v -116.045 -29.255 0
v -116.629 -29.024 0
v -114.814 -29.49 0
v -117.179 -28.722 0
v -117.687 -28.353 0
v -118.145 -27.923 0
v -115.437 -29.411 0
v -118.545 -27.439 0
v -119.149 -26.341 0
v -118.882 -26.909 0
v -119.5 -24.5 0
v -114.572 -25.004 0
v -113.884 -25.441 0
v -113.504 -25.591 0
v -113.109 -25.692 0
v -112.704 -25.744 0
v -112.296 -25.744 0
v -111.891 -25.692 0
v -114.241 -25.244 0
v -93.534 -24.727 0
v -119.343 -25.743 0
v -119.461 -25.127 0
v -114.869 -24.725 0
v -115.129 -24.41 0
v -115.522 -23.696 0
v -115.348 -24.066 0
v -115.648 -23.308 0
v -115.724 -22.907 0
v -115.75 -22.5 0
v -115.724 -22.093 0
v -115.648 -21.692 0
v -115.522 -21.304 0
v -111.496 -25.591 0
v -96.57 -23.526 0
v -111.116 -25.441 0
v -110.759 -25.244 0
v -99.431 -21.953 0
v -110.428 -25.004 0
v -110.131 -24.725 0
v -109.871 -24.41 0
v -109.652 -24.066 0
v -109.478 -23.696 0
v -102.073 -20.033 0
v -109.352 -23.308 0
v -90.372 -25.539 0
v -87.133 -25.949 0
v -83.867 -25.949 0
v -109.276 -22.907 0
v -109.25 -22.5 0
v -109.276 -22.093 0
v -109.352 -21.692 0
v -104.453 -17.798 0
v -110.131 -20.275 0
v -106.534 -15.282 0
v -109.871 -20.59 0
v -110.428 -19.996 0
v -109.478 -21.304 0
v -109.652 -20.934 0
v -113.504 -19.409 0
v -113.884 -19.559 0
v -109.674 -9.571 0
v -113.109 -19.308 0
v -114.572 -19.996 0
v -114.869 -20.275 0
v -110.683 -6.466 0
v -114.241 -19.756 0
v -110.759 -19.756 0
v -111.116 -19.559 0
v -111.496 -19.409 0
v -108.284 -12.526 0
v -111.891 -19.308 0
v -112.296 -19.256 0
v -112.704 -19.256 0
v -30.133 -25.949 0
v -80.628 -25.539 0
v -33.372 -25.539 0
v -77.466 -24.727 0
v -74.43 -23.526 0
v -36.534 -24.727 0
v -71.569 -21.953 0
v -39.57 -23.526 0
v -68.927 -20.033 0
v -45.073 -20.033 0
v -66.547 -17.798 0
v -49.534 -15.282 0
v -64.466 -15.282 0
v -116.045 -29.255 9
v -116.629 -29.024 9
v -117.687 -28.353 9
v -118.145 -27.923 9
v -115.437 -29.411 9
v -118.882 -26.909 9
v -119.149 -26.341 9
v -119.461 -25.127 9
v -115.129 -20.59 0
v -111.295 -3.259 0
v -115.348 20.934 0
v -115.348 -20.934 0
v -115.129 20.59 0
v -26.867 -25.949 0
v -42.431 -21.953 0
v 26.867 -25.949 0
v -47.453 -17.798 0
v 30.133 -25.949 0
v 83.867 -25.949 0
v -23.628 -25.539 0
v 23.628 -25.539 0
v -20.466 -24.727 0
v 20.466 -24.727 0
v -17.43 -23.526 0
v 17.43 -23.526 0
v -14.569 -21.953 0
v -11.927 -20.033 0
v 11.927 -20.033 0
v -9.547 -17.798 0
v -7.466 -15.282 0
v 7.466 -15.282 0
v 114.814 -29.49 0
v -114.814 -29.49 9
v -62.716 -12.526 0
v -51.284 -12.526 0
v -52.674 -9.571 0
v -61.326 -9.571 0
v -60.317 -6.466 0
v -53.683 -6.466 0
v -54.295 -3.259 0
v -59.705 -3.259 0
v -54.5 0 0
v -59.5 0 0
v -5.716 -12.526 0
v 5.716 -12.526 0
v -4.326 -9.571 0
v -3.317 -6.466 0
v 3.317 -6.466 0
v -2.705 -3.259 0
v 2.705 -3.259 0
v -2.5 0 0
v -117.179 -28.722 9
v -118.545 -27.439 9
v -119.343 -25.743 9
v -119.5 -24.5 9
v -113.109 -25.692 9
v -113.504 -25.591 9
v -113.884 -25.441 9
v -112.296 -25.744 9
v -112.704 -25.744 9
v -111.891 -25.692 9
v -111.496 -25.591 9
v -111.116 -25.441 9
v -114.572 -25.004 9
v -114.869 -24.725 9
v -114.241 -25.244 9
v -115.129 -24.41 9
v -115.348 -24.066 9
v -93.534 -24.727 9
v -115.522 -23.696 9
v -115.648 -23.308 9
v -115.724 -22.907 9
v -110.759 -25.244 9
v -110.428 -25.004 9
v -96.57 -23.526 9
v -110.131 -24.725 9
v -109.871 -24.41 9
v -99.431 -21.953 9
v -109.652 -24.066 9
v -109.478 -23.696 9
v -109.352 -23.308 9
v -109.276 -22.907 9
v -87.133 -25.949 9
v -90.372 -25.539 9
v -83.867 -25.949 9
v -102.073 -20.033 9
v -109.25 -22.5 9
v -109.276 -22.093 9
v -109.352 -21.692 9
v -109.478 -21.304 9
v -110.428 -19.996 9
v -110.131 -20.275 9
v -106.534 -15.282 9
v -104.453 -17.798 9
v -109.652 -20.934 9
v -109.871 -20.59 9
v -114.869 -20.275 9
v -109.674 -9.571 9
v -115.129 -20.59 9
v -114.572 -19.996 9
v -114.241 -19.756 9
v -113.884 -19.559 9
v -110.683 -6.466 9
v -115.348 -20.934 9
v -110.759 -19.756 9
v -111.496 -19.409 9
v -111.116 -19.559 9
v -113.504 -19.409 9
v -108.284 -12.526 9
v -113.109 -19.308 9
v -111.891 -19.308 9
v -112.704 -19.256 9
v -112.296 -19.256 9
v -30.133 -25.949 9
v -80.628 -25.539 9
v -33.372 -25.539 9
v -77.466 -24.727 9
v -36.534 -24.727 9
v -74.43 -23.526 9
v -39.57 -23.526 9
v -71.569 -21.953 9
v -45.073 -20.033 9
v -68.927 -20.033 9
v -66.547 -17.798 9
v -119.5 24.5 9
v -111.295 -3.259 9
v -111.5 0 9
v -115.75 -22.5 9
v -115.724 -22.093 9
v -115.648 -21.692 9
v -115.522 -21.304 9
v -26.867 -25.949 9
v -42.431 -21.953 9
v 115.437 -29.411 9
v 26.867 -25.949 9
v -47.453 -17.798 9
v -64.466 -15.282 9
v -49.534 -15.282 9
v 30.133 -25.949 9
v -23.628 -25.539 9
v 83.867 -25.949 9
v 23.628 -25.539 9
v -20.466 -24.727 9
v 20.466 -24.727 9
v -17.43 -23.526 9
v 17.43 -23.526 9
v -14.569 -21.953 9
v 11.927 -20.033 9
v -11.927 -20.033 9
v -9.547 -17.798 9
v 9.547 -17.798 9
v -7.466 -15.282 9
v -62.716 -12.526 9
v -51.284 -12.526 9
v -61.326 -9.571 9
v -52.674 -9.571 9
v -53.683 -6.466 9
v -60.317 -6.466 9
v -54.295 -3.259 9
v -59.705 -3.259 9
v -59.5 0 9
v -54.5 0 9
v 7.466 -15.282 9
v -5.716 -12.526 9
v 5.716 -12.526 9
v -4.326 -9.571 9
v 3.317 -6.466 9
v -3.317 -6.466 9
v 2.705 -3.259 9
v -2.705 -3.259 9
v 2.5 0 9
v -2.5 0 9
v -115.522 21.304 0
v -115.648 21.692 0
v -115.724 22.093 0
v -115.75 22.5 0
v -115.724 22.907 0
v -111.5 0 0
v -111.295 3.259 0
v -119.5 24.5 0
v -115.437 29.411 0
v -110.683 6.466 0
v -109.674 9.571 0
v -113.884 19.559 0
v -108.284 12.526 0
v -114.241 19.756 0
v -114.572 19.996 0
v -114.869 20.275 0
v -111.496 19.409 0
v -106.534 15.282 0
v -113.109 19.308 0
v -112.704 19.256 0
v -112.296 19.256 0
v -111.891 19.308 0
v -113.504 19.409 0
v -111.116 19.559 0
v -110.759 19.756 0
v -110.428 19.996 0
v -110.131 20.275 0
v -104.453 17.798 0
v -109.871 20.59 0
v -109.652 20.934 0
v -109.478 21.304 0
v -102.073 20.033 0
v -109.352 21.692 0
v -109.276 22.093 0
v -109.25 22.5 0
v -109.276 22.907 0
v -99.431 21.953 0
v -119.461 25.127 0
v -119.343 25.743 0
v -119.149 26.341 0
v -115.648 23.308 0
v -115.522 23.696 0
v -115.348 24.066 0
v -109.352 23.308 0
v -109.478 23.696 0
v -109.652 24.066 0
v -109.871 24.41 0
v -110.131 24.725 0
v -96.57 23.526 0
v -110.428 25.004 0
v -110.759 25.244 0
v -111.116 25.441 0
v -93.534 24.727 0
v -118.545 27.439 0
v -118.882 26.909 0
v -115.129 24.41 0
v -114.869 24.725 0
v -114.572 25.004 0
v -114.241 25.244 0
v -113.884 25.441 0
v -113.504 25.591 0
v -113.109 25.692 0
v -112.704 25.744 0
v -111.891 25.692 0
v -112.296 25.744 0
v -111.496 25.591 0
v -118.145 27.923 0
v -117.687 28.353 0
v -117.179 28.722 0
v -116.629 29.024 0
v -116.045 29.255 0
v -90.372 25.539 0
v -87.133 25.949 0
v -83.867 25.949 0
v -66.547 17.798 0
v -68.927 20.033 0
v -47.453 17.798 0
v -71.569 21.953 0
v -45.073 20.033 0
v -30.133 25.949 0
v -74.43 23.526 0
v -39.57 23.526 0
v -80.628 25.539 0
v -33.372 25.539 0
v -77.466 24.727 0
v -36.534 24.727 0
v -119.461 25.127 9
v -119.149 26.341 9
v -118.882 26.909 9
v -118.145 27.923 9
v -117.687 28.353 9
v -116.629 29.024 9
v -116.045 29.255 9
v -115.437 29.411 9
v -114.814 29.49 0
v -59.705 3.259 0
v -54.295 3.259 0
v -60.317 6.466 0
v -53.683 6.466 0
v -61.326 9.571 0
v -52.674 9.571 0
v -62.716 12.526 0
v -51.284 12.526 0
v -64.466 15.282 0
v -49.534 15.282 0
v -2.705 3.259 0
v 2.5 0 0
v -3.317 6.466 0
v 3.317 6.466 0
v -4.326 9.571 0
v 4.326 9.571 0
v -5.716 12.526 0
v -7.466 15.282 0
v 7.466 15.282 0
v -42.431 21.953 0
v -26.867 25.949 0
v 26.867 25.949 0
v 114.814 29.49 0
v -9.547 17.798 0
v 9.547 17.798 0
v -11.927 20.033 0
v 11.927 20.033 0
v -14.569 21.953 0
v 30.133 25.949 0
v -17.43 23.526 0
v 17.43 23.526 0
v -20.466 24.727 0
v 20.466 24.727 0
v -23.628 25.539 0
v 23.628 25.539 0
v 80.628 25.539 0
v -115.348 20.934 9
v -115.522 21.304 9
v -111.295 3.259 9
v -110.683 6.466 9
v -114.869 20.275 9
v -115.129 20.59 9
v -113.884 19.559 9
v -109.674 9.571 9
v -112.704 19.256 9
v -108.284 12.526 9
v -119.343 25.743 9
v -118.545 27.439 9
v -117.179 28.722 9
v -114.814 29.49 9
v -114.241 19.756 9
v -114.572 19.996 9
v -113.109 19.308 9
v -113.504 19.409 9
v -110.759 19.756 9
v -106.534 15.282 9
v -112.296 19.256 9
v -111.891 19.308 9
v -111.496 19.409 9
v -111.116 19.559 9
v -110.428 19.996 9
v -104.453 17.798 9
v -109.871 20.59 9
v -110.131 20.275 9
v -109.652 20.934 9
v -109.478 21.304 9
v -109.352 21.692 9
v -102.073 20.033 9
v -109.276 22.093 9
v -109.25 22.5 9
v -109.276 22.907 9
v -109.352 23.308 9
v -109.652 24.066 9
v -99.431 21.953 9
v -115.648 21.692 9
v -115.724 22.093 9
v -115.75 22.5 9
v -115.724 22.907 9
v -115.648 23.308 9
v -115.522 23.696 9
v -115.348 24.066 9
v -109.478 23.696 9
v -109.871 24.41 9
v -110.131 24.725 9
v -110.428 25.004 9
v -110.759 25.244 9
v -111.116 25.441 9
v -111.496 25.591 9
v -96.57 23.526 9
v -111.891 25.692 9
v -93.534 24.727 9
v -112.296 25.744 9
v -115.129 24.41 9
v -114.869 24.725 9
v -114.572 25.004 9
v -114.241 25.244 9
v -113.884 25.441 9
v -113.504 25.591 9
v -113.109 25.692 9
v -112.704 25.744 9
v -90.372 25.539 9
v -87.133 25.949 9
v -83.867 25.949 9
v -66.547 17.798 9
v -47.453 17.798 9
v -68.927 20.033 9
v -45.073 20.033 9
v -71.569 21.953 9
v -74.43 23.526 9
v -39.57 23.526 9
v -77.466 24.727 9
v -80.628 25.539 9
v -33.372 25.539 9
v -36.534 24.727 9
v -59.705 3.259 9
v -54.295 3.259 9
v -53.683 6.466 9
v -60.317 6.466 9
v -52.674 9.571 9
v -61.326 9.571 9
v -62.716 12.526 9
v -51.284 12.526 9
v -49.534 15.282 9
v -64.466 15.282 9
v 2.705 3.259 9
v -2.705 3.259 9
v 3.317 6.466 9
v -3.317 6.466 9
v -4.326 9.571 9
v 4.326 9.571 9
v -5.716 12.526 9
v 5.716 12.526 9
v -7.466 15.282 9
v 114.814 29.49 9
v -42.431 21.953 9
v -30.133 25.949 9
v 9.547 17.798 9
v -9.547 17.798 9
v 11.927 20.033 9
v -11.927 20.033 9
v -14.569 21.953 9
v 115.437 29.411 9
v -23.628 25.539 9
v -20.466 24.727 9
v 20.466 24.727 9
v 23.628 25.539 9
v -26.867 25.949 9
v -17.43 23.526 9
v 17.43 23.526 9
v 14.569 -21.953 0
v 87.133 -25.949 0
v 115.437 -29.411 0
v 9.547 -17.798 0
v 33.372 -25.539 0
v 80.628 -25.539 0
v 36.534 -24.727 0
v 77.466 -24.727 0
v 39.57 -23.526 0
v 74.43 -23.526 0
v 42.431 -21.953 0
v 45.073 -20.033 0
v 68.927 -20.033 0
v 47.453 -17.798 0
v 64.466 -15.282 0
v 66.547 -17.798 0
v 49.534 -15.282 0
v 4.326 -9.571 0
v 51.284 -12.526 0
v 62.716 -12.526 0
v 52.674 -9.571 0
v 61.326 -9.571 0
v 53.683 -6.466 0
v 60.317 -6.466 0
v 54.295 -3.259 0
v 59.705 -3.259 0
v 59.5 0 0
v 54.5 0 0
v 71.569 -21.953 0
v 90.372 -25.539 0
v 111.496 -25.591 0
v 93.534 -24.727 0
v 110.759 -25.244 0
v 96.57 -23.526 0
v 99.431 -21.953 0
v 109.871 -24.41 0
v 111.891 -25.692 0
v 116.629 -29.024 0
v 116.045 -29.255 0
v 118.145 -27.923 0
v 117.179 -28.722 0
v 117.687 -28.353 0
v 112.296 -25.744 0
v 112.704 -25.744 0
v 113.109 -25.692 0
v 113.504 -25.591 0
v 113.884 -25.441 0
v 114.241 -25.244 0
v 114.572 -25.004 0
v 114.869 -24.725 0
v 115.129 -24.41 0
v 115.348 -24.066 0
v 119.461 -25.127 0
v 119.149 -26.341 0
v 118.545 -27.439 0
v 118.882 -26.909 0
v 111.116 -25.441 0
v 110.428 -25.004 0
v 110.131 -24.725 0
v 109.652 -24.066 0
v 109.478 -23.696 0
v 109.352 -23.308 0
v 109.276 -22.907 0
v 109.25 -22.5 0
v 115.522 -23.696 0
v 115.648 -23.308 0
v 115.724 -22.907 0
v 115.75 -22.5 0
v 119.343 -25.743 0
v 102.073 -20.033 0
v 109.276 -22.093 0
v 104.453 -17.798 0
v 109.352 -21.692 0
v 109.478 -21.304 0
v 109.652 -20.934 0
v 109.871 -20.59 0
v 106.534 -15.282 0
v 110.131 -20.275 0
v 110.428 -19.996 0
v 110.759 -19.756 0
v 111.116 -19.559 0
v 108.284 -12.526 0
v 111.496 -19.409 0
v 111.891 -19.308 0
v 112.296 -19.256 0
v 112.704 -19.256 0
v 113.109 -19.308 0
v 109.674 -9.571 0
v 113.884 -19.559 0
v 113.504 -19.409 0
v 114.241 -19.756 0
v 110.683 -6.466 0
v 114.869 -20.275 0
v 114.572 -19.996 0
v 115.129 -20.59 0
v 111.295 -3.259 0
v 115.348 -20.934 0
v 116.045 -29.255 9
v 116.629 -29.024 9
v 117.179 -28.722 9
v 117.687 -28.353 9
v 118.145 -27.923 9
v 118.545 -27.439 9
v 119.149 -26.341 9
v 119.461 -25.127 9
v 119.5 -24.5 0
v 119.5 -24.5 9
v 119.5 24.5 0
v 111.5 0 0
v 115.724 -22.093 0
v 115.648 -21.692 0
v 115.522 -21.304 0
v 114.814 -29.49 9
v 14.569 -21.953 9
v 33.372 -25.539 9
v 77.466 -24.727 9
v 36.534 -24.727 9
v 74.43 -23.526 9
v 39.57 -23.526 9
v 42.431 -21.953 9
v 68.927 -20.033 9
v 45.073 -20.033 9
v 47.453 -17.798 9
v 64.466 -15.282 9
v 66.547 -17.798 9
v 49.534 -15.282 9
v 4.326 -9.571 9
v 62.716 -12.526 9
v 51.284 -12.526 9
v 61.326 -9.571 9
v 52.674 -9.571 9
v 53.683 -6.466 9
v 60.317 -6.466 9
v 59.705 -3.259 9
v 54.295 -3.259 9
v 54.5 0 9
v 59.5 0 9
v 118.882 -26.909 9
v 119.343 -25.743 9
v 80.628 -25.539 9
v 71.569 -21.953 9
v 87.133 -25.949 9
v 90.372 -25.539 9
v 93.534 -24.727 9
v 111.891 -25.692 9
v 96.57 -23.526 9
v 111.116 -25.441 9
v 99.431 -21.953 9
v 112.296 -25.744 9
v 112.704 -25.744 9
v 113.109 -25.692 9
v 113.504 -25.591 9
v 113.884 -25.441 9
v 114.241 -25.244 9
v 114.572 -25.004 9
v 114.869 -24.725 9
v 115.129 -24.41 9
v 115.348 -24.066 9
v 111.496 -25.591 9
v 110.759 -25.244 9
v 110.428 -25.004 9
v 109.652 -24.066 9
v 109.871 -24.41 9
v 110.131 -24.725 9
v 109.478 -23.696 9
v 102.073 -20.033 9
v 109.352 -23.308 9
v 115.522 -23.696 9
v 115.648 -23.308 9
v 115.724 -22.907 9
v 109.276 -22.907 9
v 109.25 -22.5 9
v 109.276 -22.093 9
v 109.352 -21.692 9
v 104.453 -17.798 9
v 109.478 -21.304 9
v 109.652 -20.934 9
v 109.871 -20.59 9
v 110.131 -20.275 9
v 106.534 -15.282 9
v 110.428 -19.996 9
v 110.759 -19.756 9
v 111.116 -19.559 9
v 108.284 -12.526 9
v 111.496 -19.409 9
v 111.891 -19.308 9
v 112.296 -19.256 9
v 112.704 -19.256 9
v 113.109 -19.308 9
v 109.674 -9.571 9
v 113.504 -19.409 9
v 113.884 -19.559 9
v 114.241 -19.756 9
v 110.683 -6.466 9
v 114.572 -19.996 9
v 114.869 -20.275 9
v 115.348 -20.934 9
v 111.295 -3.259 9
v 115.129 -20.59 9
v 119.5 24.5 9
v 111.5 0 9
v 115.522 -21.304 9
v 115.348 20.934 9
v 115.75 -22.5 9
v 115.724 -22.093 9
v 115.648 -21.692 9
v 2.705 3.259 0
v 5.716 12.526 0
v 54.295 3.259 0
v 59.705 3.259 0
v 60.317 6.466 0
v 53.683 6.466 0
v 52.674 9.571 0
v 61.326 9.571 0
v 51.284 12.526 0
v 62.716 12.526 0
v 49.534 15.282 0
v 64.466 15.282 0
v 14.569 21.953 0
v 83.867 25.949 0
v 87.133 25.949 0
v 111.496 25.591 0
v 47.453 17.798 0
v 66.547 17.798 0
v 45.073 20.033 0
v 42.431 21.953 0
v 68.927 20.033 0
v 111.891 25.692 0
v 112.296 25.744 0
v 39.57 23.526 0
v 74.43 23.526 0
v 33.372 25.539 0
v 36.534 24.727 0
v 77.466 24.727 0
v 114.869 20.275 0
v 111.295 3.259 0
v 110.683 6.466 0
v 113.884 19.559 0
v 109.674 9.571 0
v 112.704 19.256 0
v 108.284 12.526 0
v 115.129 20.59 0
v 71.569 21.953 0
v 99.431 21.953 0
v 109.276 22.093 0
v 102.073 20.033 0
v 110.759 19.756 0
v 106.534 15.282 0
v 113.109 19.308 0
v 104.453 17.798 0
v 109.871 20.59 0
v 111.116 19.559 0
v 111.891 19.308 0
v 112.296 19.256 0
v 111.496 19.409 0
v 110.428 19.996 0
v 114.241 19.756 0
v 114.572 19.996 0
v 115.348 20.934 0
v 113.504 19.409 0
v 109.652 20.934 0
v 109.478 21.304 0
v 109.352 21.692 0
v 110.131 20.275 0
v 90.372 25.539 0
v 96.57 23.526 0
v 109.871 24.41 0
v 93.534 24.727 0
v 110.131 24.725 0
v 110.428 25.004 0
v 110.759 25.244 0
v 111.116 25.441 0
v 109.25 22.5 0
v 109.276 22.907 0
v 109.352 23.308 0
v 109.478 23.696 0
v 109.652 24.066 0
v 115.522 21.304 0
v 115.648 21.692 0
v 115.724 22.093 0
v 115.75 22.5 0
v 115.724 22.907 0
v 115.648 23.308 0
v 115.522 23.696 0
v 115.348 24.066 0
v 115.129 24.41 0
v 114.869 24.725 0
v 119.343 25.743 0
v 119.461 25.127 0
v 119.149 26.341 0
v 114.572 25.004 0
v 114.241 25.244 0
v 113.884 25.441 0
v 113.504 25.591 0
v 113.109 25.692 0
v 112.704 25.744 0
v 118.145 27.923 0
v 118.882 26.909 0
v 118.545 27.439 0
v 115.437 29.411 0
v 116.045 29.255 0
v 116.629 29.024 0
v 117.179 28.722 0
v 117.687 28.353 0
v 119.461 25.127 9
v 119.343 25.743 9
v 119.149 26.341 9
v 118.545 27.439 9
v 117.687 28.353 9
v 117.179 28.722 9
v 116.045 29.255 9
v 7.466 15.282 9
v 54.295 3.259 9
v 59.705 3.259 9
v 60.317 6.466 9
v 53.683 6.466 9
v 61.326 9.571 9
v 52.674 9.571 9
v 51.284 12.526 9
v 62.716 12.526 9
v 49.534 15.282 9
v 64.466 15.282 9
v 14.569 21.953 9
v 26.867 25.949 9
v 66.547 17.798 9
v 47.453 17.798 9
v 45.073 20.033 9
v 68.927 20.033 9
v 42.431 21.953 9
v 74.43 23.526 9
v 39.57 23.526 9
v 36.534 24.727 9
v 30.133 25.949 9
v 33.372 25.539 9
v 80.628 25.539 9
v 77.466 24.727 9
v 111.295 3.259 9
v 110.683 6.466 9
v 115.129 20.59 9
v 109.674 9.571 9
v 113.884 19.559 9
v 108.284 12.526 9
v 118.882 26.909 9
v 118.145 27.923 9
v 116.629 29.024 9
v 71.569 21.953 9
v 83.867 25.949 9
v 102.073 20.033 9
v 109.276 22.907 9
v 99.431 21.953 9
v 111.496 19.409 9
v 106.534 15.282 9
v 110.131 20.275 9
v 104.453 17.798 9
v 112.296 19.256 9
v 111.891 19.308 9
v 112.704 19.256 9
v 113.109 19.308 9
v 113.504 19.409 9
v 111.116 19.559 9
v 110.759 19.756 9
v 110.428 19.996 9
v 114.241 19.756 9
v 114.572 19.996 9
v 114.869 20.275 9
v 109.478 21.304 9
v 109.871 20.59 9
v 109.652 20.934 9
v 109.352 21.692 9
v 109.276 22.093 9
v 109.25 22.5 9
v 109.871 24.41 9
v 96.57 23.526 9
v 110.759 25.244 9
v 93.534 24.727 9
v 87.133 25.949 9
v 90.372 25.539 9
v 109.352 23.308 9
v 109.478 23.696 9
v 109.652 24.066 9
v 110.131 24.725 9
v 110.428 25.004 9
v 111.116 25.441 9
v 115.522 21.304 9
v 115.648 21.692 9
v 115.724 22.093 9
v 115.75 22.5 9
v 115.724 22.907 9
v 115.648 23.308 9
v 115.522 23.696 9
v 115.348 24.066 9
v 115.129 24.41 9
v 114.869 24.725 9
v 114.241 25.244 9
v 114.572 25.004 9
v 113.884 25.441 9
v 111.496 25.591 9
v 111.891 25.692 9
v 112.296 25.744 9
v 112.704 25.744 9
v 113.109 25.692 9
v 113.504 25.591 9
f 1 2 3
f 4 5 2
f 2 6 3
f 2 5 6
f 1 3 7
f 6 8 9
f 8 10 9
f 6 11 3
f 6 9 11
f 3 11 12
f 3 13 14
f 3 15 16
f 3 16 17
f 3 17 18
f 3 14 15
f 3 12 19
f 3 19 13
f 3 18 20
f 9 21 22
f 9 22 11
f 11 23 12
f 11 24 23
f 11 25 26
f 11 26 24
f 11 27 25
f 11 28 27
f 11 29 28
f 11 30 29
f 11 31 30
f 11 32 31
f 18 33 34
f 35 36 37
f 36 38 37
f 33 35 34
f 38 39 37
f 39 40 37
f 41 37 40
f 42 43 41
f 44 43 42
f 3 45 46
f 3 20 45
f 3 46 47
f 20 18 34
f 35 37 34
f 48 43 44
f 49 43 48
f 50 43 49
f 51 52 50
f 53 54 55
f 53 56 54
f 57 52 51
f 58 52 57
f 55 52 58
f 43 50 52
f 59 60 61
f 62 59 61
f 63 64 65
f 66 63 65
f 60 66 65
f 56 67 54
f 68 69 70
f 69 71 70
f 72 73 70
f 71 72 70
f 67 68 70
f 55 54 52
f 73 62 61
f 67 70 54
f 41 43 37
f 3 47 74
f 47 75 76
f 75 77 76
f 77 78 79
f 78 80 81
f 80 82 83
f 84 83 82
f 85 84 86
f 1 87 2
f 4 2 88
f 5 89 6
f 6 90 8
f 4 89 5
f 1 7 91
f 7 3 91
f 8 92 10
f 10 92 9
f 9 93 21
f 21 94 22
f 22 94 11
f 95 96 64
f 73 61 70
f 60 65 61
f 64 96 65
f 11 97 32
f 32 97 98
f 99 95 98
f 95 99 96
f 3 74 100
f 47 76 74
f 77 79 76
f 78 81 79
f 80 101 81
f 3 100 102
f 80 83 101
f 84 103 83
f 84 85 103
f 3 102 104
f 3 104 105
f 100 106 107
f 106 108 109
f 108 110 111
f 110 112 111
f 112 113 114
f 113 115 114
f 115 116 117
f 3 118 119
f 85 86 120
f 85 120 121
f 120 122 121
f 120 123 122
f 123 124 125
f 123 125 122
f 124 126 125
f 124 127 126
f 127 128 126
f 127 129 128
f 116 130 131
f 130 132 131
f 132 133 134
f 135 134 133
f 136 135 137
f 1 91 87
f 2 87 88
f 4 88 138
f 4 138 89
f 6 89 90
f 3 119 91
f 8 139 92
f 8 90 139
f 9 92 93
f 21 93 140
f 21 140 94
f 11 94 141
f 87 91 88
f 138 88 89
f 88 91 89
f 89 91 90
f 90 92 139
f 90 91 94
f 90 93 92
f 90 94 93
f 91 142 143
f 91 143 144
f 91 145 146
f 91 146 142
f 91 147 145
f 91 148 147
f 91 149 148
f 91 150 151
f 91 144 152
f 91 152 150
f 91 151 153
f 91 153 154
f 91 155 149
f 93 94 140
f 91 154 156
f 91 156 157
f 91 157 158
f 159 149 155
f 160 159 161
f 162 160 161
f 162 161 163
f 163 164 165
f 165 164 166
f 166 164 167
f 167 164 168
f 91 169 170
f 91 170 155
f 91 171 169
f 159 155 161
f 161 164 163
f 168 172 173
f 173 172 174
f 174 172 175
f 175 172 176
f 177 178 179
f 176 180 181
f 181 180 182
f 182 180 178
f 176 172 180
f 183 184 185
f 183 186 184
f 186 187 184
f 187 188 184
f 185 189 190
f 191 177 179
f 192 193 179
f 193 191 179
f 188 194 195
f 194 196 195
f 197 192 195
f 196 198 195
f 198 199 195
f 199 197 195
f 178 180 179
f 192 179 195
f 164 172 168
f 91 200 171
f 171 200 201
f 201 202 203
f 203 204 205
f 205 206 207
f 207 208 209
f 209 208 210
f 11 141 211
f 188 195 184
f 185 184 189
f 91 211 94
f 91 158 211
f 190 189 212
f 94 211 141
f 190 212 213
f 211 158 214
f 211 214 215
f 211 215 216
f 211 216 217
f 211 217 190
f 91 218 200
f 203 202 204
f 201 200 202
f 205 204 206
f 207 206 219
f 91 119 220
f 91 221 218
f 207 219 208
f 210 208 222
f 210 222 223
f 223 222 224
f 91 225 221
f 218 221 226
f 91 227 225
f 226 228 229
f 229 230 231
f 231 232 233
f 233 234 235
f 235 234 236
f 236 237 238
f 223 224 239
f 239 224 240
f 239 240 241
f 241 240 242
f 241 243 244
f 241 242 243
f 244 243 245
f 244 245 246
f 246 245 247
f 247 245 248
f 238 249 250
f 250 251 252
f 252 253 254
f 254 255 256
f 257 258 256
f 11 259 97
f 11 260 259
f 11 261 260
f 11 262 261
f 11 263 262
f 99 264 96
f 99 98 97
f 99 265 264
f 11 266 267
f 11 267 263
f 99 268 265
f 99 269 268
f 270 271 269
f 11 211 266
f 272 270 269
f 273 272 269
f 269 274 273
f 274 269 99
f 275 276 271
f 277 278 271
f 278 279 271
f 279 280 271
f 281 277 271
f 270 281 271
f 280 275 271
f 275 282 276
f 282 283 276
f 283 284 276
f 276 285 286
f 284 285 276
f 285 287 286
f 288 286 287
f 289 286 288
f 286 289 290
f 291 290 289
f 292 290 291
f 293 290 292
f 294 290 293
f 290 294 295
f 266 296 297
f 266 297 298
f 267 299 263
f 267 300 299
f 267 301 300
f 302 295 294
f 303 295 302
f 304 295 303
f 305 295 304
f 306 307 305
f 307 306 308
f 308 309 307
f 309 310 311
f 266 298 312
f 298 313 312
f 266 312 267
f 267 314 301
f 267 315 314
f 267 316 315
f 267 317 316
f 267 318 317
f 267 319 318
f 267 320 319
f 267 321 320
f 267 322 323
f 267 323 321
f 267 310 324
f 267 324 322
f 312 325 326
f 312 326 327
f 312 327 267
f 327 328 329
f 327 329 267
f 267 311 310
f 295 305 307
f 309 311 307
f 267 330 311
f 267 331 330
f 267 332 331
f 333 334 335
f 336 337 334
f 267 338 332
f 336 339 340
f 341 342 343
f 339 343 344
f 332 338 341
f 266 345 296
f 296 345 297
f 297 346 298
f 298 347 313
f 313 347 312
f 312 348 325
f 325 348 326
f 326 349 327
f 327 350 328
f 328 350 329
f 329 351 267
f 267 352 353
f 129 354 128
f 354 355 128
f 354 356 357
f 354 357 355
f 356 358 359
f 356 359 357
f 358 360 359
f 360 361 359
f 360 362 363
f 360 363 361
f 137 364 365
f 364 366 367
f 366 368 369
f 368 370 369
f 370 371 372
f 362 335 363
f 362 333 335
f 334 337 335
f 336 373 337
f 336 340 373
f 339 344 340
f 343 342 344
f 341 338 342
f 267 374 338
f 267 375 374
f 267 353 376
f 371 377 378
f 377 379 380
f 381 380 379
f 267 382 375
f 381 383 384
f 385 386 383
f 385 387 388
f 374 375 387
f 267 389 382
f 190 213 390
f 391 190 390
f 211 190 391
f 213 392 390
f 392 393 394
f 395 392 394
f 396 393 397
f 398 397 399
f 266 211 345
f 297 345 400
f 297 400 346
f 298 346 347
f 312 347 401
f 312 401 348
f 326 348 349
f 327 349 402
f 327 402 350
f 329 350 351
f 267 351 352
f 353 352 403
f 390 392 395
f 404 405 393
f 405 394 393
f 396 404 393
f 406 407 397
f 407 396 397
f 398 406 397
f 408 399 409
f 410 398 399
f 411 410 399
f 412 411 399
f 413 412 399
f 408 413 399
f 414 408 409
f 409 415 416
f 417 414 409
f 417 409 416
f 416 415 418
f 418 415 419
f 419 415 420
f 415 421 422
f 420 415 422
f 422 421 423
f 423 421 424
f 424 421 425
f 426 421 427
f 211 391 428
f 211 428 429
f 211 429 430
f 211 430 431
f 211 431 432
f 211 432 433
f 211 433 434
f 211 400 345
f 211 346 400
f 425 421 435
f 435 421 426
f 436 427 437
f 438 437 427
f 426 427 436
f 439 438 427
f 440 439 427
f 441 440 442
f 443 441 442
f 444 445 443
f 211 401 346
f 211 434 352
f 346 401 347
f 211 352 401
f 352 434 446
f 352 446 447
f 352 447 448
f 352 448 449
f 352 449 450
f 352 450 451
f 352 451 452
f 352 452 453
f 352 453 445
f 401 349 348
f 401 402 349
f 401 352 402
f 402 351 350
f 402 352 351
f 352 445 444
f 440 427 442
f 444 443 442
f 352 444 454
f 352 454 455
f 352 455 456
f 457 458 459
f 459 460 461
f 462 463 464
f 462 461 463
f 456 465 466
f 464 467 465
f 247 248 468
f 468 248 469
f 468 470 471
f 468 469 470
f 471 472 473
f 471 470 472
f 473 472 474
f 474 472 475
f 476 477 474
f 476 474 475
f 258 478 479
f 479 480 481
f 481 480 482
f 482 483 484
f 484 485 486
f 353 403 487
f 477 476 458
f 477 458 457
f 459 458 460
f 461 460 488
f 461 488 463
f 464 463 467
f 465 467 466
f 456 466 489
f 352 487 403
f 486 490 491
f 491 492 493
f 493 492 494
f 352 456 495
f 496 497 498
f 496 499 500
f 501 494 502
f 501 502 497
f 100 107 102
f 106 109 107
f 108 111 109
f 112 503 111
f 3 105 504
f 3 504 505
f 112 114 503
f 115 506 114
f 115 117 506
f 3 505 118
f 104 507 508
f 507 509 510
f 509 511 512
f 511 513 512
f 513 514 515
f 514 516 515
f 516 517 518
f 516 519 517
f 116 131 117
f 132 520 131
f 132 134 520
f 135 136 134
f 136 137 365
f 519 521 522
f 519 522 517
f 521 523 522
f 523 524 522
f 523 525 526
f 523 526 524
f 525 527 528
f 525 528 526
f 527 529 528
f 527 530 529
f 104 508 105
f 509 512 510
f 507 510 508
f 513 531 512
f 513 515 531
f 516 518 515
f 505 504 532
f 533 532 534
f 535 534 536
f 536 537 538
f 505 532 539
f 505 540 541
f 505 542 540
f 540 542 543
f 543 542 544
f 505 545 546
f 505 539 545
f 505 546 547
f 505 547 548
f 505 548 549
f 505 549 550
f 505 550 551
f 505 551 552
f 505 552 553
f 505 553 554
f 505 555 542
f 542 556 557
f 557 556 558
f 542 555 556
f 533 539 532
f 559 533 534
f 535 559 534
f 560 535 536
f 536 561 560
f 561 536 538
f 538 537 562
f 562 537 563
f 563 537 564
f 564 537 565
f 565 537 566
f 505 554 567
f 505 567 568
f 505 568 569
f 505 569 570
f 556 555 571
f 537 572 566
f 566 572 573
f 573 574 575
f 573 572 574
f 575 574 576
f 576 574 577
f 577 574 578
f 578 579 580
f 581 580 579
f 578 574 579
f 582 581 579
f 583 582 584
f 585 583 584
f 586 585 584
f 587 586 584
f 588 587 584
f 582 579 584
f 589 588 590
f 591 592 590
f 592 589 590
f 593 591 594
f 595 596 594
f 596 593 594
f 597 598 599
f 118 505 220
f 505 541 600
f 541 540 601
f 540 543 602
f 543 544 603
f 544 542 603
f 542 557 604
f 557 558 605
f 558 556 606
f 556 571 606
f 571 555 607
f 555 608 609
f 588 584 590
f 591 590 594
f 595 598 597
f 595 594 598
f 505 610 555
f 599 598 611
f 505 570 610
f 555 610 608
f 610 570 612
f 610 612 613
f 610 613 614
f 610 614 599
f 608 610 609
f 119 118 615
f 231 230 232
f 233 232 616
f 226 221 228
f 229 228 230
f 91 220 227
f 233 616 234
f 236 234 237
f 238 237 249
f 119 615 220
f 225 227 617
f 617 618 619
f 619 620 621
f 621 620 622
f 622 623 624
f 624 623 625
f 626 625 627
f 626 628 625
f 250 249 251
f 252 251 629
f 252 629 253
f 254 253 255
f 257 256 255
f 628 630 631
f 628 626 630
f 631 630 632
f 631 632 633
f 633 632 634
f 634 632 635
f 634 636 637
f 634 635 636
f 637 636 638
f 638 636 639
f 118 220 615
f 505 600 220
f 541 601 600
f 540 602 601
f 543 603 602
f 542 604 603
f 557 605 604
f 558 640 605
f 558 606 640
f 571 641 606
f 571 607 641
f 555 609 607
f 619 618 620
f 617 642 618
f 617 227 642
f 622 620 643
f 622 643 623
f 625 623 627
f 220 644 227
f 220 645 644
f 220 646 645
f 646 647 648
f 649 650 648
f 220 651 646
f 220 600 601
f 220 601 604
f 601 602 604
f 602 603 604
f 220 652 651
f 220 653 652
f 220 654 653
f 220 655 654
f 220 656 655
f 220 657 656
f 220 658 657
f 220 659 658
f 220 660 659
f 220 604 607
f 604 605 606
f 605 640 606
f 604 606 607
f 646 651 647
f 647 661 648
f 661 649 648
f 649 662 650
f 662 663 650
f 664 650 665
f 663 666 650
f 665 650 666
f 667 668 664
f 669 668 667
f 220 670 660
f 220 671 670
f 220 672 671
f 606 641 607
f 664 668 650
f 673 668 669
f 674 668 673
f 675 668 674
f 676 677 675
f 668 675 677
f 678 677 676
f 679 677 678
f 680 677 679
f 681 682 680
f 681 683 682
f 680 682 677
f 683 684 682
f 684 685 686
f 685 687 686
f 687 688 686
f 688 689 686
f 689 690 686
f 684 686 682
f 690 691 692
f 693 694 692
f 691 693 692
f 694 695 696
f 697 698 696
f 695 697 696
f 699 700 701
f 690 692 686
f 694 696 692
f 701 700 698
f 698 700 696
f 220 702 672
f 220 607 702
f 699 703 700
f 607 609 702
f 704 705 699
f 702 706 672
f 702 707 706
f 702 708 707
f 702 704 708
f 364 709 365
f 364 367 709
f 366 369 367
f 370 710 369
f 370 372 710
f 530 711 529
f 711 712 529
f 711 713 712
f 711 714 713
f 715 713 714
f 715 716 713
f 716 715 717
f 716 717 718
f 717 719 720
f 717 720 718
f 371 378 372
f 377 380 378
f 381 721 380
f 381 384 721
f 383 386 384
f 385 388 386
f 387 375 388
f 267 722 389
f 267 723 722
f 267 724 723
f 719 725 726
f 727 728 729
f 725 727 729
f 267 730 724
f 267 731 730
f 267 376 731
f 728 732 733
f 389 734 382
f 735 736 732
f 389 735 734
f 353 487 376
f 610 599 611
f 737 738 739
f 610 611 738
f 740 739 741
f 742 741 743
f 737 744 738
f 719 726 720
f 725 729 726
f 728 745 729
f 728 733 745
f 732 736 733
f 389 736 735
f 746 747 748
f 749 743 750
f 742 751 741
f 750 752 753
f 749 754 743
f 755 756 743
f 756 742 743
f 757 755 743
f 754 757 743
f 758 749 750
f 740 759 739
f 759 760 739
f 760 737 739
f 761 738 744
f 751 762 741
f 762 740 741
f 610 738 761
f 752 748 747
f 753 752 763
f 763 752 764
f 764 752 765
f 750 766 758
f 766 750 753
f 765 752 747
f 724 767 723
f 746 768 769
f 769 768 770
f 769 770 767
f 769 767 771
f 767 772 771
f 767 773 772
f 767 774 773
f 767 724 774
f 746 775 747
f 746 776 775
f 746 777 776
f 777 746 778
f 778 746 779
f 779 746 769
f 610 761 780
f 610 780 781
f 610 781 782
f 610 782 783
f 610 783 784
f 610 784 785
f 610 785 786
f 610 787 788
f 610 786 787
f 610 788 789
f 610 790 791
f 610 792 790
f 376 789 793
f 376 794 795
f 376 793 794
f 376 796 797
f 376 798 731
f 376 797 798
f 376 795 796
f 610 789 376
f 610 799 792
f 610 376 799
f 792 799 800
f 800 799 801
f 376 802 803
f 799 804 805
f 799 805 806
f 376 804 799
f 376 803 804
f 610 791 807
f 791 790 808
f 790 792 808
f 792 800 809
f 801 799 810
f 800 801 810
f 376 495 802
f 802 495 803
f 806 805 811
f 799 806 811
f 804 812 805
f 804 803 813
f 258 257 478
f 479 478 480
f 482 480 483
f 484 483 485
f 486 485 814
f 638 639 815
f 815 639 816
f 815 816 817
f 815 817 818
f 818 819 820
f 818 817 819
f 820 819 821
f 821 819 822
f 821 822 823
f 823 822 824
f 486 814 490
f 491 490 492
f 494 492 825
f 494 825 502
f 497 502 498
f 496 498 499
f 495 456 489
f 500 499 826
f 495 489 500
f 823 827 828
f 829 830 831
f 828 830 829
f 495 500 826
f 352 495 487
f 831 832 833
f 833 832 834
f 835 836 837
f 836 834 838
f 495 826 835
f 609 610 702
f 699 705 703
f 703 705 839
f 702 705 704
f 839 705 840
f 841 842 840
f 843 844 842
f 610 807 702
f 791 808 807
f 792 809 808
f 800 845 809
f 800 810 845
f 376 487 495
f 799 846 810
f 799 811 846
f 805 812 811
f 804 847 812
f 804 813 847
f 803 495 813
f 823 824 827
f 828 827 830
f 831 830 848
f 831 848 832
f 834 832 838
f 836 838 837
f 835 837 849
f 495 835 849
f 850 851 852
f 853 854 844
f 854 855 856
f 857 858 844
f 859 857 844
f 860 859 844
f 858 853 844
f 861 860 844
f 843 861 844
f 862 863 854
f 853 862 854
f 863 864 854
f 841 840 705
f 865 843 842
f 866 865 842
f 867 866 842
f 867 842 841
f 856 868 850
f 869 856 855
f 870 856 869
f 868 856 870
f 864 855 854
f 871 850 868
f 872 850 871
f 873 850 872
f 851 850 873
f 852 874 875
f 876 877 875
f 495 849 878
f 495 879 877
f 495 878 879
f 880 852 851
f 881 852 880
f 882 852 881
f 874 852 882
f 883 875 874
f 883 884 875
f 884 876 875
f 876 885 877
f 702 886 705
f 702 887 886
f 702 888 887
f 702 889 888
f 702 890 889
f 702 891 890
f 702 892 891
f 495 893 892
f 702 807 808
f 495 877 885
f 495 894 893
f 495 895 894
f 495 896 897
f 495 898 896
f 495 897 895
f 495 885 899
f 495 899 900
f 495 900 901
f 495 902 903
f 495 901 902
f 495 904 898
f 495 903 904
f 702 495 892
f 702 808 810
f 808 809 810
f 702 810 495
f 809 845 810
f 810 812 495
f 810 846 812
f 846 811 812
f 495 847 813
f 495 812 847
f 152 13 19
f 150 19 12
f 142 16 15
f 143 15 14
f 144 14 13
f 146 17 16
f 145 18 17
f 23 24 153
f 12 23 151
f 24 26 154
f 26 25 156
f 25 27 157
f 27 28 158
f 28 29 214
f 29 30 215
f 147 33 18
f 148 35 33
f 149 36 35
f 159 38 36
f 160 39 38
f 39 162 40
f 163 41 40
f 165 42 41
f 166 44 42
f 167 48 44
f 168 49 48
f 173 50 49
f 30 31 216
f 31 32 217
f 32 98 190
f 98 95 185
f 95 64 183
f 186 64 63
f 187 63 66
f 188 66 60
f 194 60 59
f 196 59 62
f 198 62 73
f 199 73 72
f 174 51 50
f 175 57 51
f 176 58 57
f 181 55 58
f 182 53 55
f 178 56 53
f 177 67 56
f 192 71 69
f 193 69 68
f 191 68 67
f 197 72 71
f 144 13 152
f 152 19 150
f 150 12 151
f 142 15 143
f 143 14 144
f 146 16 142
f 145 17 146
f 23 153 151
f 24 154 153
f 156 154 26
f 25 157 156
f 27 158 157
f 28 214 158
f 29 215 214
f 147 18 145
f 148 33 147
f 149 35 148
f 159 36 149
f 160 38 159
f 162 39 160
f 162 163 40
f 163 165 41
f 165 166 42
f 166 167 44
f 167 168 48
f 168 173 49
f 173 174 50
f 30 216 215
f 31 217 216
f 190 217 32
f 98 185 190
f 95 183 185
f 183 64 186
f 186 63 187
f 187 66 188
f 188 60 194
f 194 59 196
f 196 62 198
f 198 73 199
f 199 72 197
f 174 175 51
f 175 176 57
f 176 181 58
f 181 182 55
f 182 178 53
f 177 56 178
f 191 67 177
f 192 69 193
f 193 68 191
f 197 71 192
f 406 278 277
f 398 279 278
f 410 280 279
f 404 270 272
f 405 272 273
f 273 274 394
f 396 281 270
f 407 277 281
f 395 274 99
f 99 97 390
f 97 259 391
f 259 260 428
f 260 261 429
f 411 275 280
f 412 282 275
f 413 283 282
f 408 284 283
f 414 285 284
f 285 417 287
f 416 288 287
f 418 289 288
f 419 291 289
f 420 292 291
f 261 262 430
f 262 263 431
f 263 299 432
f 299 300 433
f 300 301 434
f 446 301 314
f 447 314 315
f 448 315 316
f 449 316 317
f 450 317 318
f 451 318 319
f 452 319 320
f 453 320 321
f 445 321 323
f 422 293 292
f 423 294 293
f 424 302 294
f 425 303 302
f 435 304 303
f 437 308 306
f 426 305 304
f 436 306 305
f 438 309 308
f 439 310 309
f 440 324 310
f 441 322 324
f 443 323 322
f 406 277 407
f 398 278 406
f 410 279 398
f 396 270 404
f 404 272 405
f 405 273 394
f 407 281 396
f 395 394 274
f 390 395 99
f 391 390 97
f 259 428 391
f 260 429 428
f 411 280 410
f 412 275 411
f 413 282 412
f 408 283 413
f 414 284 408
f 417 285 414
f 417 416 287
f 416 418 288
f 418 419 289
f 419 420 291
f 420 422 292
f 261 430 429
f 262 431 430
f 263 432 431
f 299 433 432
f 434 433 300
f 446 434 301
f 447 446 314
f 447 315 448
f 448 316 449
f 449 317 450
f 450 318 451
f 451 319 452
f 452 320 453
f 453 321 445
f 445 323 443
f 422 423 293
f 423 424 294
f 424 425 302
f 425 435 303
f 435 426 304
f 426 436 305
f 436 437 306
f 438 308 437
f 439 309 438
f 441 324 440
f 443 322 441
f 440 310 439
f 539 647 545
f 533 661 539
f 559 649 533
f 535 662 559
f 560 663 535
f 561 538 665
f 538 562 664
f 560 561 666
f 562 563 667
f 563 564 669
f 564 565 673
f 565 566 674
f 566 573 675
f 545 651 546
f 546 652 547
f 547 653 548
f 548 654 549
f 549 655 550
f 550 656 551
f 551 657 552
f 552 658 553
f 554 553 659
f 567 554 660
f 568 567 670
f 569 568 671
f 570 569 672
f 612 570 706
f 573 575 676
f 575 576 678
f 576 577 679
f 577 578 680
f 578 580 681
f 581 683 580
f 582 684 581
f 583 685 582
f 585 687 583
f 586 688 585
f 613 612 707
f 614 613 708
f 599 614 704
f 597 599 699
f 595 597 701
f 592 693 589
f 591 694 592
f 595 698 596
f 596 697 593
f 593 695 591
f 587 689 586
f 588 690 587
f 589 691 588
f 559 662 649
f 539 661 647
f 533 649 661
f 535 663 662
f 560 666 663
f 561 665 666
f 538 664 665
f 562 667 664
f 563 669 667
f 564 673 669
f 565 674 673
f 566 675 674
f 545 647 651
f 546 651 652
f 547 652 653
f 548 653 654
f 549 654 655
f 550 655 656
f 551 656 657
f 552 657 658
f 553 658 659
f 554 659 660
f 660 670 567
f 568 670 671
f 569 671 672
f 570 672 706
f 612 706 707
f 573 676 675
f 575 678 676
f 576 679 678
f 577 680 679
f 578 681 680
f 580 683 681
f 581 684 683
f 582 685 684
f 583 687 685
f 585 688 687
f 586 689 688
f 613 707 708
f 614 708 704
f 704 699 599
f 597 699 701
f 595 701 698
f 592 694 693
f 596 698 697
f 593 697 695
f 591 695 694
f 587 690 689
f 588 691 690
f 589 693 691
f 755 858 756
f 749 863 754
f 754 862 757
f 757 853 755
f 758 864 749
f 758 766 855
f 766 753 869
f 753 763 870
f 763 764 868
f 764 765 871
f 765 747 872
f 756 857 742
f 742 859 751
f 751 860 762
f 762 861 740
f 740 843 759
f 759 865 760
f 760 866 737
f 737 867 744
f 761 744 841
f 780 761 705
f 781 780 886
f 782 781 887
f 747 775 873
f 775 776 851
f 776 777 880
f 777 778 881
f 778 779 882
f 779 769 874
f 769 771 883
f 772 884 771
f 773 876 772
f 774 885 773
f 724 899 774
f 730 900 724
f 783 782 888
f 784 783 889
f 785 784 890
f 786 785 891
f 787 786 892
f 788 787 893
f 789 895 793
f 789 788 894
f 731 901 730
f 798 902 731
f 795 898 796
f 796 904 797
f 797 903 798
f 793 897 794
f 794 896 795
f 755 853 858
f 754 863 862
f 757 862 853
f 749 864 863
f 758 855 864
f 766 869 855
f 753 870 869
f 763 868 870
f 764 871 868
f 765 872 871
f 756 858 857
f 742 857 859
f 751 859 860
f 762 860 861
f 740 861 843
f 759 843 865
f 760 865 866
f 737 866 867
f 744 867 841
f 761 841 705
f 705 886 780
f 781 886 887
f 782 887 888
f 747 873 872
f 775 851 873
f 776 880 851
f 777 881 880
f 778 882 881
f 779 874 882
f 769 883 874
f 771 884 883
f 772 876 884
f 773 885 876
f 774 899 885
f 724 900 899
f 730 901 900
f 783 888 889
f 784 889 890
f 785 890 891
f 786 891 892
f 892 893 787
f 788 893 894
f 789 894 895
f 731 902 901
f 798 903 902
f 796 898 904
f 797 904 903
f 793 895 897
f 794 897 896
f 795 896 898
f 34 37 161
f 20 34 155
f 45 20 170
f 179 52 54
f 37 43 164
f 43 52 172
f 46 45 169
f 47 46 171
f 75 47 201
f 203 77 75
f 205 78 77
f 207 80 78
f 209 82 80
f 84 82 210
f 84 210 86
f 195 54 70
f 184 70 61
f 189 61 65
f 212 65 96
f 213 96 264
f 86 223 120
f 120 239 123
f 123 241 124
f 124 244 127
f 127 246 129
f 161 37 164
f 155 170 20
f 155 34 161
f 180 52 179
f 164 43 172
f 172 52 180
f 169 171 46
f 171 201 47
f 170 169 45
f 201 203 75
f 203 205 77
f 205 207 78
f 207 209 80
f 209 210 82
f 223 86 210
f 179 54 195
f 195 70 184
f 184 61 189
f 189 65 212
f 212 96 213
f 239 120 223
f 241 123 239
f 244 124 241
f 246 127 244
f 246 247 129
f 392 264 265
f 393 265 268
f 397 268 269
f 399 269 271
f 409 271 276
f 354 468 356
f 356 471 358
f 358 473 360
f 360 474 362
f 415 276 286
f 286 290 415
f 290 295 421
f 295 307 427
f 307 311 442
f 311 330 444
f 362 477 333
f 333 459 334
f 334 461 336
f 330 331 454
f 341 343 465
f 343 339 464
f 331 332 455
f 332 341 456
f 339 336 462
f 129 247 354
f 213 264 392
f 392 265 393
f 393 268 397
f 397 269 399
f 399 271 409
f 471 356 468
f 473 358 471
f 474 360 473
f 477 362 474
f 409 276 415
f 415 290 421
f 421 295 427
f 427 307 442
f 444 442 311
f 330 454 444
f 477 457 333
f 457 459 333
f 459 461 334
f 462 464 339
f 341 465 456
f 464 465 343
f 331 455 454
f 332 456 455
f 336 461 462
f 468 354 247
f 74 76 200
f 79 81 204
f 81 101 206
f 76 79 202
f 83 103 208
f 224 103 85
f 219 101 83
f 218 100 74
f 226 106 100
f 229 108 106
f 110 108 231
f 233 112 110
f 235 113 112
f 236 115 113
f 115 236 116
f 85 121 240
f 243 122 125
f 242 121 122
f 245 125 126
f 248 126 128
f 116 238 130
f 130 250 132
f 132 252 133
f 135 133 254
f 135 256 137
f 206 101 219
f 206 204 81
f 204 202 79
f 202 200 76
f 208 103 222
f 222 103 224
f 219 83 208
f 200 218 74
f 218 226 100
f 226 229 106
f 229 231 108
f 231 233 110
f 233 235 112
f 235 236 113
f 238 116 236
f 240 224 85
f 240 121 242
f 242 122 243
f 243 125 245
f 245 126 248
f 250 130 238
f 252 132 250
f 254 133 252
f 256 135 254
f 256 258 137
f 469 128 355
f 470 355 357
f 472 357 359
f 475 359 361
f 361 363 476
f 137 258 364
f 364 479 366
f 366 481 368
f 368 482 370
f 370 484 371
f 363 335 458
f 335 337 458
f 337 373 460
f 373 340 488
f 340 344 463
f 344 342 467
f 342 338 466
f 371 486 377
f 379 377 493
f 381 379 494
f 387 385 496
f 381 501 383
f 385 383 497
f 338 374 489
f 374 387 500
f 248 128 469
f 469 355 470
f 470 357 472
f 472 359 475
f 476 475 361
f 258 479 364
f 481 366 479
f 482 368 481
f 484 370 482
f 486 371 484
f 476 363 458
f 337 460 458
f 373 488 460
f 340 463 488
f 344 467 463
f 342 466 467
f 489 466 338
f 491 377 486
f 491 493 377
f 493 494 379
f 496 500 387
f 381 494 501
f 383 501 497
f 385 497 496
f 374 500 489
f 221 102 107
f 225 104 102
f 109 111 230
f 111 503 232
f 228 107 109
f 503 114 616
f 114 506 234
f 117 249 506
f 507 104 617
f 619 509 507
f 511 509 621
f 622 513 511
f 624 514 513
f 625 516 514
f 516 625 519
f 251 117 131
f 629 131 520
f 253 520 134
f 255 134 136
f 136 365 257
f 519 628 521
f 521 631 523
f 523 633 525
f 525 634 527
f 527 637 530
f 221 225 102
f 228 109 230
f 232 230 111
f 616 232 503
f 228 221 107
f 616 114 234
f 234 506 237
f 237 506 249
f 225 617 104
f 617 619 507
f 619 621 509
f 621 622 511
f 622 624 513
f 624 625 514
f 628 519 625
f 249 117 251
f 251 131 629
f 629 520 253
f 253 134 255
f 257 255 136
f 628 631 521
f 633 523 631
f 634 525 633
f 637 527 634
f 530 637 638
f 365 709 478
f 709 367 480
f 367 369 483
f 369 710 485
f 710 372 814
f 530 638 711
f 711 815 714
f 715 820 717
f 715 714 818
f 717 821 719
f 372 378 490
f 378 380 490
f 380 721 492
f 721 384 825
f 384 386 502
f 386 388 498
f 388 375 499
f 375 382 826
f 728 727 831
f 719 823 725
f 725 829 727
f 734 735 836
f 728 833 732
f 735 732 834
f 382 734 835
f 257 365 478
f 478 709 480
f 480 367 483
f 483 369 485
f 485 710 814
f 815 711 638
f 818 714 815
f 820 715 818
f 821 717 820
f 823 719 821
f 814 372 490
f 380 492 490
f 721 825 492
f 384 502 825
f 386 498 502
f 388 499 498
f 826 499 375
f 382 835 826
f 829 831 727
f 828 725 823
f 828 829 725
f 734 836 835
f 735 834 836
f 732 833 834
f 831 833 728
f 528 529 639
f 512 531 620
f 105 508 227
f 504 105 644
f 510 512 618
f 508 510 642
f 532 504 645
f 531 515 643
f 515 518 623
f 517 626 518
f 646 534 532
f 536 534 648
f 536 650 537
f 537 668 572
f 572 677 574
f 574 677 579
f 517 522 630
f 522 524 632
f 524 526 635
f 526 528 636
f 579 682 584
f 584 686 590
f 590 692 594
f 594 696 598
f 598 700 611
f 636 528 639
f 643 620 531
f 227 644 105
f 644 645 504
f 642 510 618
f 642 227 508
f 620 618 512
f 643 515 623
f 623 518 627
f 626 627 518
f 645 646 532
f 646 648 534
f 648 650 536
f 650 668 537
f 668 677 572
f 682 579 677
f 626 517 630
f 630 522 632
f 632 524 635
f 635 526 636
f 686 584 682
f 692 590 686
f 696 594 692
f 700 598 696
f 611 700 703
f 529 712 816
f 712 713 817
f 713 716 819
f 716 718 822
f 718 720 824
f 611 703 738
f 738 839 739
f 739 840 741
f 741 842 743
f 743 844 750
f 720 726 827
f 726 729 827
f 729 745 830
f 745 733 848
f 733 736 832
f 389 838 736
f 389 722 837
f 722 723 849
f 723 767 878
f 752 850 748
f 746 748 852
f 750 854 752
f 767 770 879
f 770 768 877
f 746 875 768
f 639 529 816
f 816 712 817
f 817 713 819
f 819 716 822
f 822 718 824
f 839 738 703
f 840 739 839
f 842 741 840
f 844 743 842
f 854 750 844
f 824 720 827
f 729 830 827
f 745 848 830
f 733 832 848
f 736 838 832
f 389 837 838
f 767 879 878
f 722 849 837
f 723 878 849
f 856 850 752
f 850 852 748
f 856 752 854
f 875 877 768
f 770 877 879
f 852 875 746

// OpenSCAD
$fn = 50;

difference() {
	union() {
		hull() {
			translate(v = [-114.5, 24.5, 0]) {
				cylinder(h = 9, r = 5);
			}
			translate(v = [114.5, 24.5, 0]) {
				cylinder(h = 9, r = 5);
			}
			translate(v = [-114.5, -24.5, 0]) {
				cylinder(h = 9, r = 5);
			}
			translate(v = [114.5, -24.5, 0]) {
				cylinder(h = 9, r = 5);
			}
		}
	}
	union() {
		translate(v = [-112.5, -22.5, -100.0]) {
			cylinder(h = 200, r = 3.25);
		}
		translate(v = [-112.5, 22.5, -100.0]) {
			cylinder(h = 200, r = 3.25);
		}
		translate(v = [112.5, -22.5, -100.0]) {
			cylinder(h = 200, r = 3.25);
		}
		translate(v = [112.5, 22.5, -100.0]) {
			cylinder(h = 200, r = 3.25);
		}
		translate(v = [-112.5, -22.5, -100.0]) {
			cylinder(h = 200, r = 1.8);
		}
		translate(v = [-112.5, 22.5, -100.0]) {
			cylinder(h = 200, r = 1.8);
		}
		translate(v = [112.5, -22.5, -100.0]) {
			cylinder(h = 200, r = 1.8);
		}
		translate(v = [112.5, 22.5, -100.0]) {
			cylinder(h = 200, r = 1.8);
		}
		translate(v = [-85.5, 0, 0.0]) {
			cylinder(h = 9, r = 26.0);
		}
		translate(v = [-28.5, 0, 0.0]) {
			cylinder(h = 9, r = 26.0);
		}
		translate(v = [28.5, 0, 0.0]) {
			cylinder(h = 9, r = 26.0);
		}
		translate(v = [85.5, 0, 0.0]) {
			cylinder(h = 9, r = 26.0);
		}
	}
}
